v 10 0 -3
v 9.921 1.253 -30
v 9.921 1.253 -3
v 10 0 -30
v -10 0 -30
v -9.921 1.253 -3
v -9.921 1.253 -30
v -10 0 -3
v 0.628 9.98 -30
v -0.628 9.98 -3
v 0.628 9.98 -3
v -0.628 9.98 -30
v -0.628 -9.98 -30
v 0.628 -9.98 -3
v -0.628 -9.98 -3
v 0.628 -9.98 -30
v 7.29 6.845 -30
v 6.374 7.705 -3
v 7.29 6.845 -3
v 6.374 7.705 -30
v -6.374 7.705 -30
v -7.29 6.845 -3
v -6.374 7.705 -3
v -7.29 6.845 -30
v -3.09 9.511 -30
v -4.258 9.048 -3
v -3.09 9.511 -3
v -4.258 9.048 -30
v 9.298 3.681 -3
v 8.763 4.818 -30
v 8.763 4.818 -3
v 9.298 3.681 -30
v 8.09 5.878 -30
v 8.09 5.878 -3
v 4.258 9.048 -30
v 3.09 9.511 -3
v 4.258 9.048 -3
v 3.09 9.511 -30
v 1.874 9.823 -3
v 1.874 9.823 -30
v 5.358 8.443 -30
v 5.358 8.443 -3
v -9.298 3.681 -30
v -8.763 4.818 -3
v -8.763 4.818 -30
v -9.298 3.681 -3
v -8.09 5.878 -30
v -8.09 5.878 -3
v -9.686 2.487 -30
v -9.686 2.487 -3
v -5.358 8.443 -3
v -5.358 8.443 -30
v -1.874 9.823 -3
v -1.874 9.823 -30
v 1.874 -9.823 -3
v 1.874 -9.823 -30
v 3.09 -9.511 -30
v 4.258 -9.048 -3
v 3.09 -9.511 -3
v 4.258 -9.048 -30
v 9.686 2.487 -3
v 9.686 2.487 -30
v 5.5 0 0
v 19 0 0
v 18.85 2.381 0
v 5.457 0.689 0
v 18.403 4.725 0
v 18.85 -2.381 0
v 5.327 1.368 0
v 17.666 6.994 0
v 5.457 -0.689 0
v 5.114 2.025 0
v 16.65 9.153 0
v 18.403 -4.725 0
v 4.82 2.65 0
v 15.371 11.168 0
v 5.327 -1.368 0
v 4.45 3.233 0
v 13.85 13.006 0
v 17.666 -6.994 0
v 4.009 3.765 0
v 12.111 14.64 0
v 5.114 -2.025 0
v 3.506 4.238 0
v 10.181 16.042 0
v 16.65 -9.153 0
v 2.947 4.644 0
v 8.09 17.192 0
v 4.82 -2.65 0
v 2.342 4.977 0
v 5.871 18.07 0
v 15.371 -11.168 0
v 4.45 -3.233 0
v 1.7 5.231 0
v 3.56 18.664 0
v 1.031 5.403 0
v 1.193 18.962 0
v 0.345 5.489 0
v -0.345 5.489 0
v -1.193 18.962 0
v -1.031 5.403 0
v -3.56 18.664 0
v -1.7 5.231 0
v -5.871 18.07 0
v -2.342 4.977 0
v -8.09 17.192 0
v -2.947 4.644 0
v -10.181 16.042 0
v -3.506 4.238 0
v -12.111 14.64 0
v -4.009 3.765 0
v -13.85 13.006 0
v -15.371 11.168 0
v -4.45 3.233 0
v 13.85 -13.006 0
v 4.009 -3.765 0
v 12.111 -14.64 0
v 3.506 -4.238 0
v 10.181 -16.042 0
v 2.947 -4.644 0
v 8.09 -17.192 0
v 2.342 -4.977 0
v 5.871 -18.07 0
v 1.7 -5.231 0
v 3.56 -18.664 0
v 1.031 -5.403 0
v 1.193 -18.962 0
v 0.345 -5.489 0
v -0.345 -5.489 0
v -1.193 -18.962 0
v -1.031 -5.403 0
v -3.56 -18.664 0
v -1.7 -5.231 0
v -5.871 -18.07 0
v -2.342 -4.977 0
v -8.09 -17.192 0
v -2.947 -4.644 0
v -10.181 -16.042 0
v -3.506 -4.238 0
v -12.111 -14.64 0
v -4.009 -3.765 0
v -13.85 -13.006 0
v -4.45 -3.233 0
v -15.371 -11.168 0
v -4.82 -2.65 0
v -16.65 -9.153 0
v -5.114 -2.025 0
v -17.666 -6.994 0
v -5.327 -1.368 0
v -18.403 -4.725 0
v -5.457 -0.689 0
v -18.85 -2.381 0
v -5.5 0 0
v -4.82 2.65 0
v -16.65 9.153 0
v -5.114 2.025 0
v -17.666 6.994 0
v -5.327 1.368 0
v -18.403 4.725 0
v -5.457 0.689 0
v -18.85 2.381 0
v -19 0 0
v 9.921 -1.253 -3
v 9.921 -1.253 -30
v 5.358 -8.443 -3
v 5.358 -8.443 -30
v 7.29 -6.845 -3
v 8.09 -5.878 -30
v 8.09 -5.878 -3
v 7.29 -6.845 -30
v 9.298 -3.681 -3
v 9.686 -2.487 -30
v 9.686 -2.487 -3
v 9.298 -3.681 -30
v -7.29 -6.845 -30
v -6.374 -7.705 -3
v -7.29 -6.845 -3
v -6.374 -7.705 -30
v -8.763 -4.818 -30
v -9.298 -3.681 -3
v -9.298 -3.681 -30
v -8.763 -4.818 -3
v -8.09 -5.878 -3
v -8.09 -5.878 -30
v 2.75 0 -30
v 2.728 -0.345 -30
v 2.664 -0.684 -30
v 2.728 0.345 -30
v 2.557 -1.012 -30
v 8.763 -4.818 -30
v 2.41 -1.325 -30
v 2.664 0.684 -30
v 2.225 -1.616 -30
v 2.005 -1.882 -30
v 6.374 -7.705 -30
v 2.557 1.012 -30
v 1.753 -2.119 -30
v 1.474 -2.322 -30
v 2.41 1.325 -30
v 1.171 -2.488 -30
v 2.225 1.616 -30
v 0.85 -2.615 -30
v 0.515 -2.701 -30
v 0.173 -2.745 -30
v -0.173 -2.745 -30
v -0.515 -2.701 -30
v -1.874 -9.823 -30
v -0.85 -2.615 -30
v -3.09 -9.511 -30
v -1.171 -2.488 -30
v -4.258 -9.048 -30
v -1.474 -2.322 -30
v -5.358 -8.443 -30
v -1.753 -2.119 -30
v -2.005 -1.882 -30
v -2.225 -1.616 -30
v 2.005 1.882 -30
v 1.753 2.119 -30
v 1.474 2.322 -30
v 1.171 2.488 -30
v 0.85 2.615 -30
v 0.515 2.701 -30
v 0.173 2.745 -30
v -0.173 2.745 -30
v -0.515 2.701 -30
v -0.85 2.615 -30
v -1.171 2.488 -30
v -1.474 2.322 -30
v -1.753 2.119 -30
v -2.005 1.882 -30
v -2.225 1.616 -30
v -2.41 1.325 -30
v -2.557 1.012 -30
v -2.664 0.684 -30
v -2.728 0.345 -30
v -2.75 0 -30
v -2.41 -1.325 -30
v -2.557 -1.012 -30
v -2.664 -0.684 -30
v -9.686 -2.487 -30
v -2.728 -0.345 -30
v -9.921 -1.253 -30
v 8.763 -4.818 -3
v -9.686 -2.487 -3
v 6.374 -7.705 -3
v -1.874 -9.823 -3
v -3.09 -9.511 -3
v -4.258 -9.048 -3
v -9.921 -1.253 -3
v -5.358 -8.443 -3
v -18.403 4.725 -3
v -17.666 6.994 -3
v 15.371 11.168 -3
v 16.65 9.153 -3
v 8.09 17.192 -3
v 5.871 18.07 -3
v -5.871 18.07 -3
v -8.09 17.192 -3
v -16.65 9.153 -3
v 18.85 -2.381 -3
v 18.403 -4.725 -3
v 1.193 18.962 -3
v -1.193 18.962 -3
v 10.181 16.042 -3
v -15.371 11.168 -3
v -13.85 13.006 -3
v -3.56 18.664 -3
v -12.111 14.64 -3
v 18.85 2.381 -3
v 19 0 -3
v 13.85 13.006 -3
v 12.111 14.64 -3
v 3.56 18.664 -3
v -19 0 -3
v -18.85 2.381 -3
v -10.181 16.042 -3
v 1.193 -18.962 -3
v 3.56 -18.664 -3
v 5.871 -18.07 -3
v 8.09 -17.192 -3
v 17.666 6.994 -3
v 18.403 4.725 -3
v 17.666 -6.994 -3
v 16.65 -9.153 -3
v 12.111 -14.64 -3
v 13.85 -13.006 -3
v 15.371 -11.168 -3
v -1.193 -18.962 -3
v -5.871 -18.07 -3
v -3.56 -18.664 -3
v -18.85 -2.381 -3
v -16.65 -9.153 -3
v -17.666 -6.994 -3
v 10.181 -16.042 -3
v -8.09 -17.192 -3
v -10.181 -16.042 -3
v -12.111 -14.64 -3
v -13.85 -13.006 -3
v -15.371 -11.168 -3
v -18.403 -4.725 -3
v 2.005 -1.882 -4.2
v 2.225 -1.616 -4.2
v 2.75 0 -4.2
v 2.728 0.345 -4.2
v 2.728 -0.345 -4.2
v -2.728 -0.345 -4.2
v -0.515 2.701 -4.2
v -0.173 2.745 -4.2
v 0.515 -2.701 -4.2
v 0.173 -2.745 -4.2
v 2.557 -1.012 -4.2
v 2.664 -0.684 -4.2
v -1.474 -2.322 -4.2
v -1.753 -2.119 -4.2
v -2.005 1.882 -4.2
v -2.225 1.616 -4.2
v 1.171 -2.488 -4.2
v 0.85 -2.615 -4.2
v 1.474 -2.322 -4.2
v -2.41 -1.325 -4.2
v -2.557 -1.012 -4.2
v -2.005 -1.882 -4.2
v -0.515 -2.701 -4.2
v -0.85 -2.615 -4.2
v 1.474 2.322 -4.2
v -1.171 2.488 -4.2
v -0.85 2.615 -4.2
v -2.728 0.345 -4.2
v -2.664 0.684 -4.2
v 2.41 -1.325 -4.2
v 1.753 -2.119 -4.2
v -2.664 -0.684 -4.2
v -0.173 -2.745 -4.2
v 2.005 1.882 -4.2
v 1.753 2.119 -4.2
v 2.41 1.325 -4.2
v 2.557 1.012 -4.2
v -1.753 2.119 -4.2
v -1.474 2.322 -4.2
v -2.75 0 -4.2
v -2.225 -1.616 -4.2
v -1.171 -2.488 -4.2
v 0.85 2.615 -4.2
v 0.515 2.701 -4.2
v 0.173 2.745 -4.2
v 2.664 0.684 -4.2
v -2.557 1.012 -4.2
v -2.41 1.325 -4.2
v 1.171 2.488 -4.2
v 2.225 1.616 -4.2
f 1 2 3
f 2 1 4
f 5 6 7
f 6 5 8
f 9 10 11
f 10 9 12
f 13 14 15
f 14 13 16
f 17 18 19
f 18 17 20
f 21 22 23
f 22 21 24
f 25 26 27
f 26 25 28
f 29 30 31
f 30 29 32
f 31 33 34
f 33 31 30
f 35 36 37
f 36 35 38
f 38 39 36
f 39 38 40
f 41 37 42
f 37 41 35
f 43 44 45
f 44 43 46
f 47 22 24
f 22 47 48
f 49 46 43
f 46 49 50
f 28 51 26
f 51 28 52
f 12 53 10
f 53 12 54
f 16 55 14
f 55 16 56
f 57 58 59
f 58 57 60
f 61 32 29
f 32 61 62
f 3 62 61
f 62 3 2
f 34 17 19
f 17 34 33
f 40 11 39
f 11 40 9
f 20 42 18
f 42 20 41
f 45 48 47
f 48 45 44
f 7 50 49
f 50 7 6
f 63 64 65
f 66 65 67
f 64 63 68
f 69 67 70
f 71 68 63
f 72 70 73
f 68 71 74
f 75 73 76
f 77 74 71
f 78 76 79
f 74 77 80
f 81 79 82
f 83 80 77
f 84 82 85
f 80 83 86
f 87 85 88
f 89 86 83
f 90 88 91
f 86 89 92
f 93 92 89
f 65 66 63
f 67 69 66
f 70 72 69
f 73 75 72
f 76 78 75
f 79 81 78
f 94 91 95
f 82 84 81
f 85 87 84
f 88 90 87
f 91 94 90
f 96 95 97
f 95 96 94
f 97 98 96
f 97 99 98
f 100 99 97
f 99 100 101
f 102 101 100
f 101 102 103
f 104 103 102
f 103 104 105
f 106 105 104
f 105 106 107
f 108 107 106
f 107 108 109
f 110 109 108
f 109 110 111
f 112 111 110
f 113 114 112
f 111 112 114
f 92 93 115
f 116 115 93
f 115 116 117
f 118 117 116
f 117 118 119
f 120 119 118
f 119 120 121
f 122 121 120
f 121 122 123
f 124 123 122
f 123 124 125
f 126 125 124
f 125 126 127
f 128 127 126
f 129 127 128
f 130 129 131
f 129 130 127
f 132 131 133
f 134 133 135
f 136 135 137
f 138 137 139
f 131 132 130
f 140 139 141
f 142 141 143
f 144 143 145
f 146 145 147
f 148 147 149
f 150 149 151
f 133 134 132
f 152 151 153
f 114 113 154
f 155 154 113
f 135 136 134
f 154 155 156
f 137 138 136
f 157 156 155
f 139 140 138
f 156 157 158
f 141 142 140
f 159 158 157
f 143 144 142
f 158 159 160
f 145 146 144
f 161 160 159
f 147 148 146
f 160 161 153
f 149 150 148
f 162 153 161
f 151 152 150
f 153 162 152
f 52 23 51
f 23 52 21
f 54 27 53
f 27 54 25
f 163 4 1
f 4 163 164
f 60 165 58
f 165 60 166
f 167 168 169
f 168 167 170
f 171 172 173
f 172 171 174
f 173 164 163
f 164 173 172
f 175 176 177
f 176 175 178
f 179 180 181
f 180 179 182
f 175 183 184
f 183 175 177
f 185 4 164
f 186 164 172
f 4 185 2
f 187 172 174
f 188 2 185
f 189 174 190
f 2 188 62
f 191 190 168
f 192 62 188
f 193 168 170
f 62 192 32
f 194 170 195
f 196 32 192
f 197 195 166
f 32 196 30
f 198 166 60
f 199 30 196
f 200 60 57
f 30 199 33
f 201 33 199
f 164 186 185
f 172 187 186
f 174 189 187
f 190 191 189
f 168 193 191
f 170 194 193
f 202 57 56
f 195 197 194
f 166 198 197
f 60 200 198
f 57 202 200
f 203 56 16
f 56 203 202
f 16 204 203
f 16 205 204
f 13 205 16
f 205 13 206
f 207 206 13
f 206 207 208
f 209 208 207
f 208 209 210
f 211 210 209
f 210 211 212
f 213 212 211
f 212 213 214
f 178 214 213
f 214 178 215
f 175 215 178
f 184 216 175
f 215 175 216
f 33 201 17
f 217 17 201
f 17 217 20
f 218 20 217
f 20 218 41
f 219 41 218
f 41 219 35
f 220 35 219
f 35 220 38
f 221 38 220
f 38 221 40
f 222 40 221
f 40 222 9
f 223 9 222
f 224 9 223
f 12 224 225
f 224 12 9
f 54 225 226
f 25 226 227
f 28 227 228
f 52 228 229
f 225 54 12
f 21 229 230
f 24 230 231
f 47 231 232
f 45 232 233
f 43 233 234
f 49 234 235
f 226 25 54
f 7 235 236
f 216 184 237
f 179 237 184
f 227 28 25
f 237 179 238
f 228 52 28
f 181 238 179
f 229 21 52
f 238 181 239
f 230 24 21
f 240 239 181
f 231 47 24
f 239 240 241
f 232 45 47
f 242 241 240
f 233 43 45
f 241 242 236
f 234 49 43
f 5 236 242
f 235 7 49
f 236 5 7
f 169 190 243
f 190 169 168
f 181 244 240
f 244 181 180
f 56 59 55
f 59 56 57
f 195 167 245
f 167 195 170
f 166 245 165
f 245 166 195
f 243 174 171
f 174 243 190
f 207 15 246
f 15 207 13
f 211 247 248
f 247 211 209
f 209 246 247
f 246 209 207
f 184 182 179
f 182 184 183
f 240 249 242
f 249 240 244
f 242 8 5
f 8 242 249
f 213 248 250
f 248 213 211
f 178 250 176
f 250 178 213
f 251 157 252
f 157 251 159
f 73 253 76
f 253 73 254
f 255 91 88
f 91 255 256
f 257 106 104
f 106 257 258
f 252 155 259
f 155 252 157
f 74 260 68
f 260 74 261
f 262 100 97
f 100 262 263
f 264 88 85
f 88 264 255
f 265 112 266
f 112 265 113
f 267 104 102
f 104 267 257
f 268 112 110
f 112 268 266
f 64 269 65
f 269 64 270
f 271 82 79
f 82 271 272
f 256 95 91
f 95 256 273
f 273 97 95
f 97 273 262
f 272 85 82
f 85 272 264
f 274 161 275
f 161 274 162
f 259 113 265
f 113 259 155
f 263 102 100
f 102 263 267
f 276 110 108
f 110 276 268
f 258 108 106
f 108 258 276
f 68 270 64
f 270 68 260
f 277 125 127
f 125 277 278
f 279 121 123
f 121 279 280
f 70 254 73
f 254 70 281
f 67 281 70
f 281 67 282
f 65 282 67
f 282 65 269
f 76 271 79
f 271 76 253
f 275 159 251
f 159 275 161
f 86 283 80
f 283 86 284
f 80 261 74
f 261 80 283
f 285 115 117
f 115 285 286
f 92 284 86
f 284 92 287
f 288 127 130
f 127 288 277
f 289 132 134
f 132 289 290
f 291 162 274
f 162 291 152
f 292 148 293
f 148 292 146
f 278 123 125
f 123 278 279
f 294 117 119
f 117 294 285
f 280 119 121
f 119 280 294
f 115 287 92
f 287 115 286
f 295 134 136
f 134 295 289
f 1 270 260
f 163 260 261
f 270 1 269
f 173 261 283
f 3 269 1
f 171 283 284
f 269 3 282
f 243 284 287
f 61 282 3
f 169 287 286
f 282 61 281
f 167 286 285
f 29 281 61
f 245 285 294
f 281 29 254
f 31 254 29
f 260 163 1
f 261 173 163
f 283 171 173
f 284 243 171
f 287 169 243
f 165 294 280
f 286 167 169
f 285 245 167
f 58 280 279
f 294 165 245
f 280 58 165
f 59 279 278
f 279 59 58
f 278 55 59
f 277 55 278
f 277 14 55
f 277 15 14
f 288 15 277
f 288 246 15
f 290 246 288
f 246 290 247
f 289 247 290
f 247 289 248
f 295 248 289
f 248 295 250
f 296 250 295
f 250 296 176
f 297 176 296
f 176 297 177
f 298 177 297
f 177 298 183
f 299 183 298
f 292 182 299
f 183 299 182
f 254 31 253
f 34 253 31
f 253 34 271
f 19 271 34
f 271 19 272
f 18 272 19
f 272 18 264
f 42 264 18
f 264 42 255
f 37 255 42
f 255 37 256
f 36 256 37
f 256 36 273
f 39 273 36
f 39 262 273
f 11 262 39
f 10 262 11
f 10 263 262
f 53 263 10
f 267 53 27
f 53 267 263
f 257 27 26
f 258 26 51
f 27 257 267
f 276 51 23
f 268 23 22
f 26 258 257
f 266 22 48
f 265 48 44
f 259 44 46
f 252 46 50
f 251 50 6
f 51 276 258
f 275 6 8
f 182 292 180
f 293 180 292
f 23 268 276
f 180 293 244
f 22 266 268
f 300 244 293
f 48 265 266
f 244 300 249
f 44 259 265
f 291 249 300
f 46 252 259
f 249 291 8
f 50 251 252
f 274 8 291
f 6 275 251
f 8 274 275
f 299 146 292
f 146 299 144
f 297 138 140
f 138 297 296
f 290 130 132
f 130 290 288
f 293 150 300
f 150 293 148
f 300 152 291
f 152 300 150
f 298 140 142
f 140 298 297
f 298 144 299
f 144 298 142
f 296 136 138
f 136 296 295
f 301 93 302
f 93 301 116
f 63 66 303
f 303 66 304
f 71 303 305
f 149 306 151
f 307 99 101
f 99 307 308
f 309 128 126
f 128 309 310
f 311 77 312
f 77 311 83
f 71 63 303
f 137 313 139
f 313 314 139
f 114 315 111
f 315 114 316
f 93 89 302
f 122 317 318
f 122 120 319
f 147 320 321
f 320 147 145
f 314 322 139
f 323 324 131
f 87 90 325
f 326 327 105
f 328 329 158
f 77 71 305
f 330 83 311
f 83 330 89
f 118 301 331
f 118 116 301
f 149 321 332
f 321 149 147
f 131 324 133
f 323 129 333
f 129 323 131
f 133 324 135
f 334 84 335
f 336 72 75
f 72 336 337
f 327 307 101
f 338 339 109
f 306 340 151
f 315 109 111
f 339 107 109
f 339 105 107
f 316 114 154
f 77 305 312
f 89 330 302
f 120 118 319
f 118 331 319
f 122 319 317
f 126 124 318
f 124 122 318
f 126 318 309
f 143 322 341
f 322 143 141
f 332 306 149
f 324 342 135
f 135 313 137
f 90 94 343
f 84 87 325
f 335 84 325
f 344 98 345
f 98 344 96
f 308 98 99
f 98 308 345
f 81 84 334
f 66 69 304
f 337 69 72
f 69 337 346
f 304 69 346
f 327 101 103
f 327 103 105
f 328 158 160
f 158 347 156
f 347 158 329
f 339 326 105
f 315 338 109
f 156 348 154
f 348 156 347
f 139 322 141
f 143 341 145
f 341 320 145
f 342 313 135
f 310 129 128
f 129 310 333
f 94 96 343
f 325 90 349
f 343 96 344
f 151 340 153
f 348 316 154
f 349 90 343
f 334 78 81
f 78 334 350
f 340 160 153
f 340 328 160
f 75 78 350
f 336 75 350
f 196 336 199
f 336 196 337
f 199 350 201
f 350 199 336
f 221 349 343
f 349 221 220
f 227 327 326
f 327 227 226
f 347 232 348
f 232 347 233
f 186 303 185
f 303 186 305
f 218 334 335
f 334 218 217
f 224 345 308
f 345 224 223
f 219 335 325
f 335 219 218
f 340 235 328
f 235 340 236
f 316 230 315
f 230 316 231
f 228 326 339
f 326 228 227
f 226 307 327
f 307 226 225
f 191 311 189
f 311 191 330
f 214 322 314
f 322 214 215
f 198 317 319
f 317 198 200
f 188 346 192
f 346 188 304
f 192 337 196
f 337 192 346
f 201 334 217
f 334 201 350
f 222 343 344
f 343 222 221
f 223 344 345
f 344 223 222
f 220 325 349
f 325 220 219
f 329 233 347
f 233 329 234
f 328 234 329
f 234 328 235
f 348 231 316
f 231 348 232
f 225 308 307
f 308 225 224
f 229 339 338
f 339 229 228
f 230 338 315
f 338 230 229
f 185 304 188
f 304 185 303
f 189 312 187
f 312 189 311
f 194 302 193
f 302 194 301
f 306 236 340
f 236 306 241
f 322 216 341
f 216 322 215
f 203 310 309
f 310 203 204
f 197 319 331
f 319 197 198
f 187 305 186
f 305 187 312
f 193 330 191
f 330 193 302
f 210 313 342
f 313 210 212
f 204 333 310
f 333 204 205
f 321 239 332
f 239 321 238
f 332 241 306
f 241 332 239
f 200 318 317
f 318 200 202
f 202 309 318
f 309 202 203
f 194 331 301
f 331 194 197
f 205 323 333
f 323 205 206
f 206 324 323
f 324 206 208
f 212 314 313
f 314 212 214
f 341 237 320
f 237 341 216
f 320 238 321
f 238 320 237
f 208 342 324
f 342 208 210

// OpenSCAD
$fn = 50;


difference() {
	union() {
		translate(v = [0, 0, -30.0000000000]) {
			cylinder(h = 30, r = 10.0000000000);
		}
		translate(v = [0, 0, -3.0000000000]) {
			cylinder(h = 3, r = 19.0000000000);
		}
	}
	union() {
		translate(v = [0, 0, 0]) {
			rotate(a = [0, 0, 0]) {
				difference() {
					union() {
						#translate(v = [0, 0, -30.0000000000]) {
							cylinder(h = 30, r = 2.2500000000);
						}
						#translate(v = [0, 0, -4.2000000000]) {
							cylinder(h = 4.2000000000, r1 = 2.7500000000, r2 = 5.5000000000);
						}
						#translate(v = [0, 0, -30.0000000000]) {
							cylinder(h = 30, r = 2.7500000000);
						}
						#translate(v = [0, 0, -30.0000000000]) {
							cylinder(h = 30, r = 2.2500000000);
						}
					}
					union();
				}
			}
		}
	}
}
